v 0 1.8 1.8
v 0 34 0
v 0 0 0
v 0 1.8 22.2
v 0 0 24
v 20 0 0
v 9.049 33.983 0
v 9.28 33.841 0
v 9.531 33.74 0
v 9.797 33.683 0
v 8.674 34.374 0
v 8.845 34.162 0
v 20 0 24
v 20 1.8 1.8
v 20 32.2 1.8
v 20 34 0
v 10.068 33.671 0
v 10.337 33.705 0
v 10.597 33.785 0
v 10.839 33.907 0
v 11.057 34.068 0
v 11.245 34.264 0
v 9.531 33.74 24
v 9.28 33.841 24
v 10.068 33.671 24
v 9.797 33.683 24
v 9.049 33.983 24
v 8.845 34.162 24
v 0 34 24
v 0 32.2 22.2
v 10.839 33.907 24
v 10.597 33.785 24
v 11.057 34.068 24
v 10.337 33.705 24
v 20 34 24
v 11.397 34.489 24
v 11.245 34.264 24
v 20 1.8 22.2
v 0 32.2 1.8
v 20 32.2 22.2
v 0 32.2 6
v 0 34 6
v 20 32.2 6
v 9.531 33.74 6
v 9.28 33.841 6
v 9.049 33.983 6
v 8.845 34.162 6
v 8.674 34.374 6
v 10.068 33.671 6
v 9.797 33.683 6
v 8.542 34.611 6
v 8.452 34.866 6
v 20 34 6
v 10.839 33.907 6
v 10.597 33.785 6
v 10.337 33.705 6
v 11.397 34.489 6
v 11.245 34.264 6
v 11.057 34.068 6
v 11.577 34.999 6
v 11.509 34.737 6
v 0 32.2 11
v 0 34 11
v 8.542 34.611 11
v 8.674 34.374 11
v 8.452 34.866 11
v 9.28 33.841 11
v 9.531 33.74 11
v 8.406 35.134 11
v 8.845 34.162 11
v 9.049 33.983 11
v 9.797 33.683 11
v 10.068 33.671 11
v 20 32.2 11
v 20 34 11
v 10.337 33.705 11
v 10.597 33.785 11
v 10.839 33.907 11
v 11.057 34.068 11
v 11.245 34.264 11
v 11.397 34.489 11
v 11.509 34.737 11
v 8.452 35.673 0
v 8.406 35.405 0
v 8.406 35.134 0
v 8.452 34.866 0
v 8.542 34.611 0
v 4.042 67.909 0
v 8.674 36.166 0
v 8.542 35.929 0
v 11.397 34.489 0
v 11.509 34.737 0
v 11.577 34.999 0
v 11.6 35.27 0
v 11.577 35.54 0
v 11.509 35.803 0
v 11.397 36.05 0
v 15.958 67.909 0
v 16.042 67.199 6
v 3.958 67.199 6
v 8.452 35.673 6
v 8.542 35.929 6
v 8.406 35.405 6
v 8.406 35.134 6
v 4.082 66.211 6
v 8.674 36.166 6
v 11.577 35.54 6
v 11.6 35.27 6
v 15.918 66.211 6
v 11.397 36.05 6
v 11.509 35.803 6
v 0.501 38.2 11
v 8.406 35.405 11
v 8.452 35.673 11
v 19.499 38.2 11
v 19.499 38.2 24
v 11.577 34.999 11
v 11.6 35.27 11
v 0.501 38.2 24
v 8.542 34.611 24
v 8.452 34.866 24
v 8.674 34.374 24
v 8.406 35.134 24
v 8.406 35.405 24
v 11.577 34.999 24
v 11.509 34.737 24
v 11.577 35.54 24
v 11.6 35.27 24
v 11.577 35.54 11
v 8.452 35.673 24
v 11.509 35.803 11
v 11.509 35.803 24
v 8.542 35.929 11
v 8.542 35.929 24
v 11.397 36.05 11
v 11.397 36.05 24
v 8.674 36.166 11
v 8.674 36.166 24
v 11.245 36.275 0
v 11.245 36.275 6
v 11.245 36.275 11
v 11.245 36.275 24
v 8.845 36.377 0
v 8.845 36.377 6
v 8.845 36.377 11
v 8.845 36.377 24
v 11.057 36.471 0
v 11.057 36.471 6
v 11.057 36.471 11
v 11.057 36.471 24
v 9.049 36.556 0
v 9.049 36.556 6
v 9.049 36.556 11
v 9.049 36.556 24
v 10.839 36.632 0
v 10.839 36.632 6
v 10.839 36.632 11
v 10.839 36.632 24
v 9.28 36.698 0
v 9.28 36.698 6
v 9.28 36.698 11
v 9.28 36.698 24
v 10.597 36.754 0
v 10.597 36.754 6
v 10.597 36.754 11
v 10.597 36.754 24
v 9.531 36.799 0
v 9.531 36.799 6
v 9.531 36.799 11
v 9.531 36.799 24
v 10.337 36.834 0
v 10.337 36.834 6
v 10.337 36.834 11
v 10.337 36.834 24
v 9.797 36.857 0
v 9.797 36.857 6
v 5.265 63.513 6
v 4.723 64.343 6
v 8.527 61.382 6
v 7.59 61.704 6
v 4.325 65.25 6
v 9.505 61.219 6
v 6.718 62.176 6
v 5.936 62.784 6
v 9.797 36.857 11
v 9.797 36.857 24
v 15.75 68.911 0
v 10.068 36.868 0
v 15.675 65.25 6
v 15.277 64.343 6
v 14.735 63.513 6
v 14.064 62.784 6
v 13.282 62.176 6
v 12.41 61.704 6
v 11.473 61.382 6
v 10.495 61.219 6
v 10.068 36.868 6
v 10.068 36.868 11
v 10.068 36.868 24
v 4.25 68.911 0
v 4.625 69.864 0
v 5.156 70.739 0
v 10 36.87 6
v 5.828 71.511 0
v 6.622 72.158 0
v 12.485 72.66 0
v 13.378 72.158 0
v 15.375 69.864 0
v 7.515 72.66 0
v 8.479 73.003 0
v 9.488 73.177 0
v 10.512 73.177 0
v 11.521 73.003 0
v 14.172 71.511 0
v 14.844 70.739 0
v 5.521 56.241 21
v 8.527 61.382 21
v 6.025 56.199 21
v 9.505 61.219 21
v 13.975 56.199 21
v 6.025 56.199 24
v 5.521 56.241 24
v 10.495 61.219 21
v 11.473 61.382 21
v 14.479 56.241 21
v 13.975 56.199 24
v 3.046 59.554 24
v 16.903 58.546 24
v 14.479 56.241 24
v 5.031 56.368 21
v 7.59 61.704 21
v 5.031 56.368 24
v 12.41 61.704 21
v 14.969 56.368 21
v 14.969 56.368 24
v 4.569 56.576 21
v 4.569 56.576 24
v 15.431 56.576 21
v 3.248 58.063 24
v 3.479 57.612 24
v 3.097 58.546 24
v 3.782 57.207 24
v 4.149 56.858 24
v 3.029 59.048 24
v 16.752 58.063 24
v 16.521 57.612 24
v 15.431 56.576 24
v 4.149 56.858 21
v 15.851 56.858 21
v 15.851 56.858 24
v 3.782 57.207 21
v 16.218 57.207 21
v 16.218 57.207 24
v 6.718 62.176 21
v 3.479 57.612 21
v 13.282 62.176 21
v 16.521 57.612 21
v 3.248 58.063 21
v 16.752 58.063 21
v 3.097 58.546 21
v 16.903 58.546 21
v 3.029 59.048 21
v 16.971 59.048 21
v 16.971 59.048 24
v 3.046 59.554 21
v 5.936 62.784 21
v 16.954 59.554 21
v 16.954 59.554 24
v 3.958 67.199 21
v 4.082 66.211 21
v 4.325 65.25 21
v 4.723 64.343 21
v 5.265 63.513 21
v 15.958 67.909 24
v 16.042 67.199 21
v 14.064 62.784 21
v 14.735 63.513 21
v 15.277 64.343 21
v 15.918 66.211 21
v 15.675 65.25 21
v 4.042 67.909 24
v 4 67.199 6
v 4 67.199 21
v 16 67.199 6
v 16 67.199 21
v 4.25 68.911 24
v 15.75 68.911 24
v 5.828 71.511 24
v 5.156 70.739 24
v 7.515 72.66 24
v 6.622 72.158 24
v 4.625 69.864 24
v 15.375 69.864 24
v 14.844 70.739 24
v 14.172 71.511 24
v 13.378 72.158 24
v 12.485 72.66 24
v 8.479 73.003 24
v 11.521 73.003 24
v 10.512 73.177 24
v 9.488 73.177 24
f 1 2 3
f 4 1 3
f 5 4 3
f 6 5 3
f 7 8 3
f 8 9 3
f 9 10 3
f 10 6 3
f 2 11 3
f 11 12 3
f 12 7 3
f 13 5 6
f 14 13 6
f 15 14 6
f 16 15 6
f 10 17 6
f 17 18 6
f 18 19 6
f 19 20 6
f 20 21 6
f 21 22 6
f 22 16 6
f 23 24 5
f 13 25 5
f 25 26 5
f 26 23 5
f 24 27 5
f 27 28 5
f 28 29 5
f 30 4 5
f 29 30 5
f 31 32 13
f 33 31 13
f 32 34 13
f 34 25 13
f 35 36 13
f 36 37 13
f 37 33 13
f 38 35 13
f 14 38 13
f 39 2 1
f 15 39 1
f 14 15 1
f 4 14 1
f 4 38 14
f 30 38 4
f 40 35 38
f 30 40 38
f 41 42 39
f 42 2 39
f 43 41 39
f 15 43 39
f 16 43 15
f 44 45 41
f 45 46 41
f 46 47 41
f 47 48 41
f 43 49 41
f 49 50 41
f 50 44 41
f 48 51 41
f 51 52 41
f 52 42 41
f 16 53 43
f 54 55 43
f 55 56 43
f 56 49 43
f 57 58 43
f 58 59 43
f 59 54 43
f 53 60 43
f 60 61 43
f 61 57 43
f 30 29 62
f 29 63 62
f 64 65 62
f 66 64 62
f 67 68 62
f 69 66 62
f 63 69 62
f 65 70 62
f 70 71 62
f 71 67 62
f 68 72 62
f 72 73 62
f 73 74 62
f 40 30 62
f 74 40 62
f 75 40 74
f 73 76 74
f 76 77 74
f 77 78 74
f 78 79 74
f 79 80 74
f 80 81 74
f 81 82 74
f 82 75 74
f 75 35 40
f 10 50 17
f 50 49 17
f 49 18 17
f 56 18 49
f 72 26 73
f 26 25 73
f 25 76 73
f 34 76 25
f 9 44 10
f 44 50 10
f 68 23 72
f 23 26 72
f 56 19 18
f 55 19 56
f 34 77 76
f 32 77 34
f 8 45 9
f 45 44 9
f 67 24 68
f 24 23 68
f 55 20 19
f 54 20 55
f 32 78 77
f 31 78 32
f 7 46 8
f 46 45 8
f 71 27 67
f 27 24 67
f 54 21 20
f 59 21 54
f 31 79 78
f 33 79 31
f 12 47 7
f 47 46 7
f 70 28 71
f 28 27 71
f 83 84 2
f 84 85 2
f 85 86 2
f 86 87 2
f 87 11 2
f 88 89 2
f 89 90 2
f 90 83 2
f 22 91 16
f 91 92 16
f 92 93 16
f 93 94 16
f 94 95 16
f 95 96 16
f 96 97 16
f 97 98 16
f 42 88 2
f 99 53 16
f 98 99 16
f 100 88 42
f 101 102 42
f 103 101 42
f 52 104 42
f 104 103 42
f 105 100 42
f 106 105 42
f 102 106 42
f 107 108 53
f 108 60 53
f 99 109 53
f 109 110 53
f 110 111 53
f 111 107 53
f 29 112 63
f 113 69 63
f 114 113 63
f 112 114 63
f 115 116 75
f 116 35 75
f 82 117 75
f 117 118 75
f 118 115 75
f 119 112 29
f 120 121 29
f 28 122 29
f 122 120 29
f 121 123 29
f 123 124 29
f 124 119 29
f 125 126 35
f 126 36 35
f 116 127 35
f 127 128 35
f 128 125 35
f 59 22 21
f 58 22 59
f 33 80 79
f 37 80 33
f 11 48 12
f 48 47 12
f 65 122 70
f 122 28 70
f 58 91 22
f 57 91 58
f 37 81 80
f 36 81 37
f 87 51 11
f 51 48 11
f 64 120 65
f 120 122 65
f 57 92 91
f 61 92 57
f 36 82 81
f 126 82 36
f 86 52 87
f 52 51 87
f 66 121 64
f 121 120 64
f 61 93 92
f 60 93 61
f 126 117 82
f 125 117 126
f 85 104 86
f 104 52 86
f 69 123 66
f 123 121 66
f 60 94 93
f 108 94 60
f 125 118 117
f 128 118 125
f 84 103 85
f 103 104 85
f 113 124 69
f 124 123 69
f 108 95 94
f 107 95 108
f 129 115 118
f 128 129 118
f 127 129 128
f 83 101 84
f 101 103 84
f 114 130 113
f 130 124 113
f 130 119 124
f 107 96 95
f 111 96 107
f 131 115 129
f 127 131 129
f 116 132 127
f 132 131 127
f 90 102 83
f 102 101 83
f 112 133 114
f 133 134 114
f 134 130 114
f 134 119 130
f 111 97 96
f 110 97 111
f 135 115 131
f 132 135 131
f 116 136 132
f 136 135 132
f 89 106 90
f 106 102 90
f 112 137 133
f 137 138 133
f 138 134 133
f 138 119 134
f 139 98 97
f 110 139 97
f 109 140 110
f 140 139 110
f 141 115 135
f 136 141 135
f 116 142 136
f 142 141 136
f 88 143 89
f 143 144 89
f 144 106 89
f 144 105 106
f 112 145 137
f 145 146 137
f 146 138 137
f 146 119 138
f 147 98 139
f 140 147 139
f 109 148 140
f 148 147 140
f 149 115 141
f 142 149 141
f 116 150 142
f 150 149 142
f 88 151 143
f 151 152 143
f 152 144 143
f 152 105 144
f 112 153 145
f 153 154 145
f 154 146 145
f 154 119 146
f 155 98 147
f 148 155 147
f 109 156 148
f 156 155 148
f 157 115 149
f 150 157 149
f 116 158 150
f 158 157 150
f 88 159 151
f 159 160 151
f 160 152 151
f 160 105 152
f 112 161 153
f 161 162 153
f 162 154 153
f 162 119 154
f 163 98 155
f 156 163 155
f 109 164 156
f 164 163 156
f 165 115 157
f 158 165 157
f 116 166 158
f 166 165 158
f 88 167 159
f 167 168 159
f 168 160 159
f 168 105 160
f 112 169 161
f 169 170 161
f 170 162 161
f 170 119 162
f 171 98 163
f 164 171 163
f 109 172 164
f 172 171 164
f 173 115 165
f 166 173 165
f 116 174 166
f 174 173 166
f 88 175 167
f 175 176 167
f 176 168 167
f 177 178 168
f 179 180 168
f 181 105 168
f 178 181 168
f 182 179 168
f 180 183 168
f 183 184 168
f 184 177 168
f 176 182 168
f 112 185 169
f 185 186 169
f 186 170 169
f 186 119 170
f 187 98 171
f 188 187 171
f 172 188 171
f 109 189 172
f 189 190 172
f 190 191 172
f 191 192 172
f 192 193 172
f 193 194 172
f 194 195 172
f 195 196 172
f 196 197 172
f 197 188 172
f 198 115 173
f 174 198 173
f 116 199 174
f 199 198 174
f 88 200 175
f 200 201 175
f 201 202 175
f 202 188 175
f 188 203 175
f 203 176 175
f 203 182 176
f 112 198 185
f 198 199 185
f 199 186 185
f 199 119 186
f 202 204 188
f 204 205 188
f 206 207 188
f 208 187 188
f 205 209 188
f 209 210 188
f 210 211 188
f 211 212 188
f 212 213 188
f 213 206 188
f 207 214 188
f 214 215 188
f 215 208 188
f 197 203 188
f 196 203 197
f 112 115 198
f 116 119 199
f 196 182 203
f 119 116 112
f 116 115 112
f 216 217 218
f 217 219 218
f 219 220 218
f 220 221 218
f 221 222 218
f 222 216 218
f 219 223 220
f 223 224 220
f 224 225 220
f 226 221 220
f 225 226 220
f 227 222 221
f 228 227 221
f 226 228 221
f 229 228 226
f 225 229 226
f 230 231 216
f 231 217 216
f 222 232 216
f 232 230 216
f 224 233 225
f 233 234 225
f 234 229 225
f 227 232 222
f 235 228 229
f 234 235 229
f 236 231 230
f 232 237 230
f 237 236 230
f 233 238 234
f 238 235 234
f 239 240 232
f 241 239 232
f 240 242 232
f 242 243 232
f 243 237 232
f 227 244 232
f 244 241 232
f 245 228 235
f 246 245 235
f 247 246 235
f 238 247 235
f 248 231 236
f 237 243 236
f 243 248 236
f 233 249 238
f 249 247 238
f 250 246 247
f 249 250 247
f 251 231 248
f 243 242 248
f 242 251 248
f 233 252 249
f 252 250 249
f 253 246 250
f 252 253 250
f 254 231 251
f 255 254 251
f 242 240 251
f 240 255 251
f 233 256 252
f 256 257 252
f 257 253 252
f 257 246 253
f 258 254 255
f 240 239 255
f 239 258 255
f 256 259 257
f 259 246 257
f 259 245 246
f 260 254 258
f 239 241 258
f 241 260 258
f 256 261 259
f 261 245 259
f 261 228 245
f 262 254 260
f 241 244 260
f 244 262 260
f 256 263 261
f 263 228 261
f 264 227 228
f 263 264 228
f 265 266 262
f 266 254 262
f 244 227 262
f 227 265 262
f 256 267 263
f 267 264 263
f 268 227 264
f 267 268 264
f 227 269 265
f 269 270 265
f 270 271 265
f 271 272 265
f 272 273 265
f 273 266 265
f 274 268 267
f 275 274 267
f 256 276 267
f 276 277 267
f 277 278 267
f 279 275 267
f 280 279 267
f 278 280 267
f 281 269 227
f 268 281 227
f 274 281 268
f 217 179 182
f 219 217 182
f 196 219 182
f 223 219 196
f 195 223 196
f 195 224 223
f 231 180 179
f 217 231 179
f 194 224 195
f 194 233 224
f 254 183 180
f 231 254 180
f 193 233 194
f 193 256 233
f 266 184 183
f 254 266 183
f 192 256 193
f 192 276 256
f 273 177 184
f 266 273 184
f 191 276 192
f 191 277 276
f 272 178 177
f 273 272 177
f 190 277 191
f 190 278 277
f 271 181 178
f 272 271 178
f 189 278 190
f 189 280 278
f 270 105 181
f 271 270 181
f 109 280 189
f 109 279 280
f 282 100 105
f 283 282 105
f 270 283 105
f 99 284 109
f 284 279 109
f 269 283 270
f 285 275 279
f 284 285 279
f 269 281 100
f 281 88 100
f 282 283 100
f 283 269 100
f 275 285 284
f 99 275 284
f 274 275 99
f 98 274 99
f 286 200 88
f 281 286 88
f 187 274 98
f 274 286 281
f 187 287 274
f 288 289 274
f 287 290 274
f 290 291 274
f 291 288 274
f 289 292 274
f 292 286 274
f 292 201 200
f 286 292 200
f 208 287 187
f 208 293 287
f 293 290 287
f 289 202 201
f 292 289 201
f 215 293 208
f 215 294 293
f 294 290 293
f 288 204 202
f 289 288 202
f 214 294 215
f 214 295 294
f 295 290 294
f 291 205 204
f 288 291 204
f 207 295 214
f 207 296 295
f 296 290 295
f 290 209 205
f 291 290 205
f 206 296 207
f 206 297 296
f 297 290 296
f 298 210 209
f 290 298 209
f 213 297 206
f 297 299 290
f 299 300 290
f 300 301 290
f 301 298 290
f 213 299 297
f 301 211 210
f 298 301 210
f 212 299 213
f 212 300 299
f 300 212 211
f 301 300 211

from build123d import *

# Parameters (mm, degrees)
EXTRUDE_1_DEPTH     = 24
CUT_EXTRUDE_1_DEPTH = 80.586658306
SKETCH_3_R          = 1.6
CUT_EXTRUDE_2_DEPTH = 80.586658306
CUT_EXTRUDE_3_DEPTH = 15
FILLET_1_R          = 3


with BuildPart() as part:
    # 草图1 → 凸台-拉伸1 (new body)
    with BuildSketch(Plane.XY):
        with BuildLine():
            Line((0, 0), (20, 0))
            Line((20, 0), (20, 34))
            Line((20, 34), (15.957817839, 67.908823654))
            ThreePointArc((15.957817839, 67.908823654), (10, 73.198607775), (4.042182161, 67.908823654))
            Line((4.042182161, 67.908823654), (0, 34))
            Line((0, 34), (0, 0))
        make_face()
    extrude(amount=EXTRUDE_1_DEPTH)

    # 草图2 → 切除-拉伸1 (cut, through all)
    with BuildSketch(Plane(origin=(20, 0, 0), x_dir=(0, 0, -1), z_dir=(1, 0, 0))):
        Polygon((-22.2, 32.2), (-11, 32.2), (-11, 38.2), (-24, 38.2), (-24, 56.198607775), (-21, 56.198607775), (-21, 61.198607775), (-6, 61.198607775), (-6, 38.2), (-6, 32.2), (-1.8, 32.2), (-1.8, 1.8), (-22.2, 1.8), align=None)
    extrude(amount=-CUT_EXTRUDE_1_DEPTH, mode=Mode.SUBTRACT)

    # 草图3 → 切除-拉伸2 (cut, through all)
    with BuildSketch(Plane.XY.offset(24)):
        with Locations((10, 35.269565603)):
            Circle(SKETCH_3_R)
    extrude(amount=-CUT_EXTRUDE_2_DEPTH, mode=Mode.SUBTRACT)

    # 草图4 → 切除-拉伸3 (cut)
    with BuildSketch(Plane.XY.offset(6)):
        with BuildLine():
            Line((16, 67.198607775), (19.499328987, 67.198607775))
            Line((19.499328987, 67.198607775), (19.499328987, 38.2))
            Line((19.499328987, 38.2), (0.500671013, 38.2))
            Line((0.500671013, 38.2), (0.500671013, 67.198607775))
            Line((0.500671013, 67.198607775), (4, 67.198607775))
            ThreePointArc((4, 67.198607775), (10, 61.198607775), (16, 67.198607775))
        make_face()
    extrude(amount=CUT_EXTRUDE_3_DEPTH, mode=Mode.SUBTRACT)

    # 圆角1
    fillet_1_edges = [part.edges().sort_by_distance(p)[0] for p in [
        (17.35376204, 56.198607775, 22.5),
        (2.64623796, 56.198607775, 22.5),
    ]]
    fillet(fillet_1_edges, radius=FILLET_1_R)


solid = part.part
